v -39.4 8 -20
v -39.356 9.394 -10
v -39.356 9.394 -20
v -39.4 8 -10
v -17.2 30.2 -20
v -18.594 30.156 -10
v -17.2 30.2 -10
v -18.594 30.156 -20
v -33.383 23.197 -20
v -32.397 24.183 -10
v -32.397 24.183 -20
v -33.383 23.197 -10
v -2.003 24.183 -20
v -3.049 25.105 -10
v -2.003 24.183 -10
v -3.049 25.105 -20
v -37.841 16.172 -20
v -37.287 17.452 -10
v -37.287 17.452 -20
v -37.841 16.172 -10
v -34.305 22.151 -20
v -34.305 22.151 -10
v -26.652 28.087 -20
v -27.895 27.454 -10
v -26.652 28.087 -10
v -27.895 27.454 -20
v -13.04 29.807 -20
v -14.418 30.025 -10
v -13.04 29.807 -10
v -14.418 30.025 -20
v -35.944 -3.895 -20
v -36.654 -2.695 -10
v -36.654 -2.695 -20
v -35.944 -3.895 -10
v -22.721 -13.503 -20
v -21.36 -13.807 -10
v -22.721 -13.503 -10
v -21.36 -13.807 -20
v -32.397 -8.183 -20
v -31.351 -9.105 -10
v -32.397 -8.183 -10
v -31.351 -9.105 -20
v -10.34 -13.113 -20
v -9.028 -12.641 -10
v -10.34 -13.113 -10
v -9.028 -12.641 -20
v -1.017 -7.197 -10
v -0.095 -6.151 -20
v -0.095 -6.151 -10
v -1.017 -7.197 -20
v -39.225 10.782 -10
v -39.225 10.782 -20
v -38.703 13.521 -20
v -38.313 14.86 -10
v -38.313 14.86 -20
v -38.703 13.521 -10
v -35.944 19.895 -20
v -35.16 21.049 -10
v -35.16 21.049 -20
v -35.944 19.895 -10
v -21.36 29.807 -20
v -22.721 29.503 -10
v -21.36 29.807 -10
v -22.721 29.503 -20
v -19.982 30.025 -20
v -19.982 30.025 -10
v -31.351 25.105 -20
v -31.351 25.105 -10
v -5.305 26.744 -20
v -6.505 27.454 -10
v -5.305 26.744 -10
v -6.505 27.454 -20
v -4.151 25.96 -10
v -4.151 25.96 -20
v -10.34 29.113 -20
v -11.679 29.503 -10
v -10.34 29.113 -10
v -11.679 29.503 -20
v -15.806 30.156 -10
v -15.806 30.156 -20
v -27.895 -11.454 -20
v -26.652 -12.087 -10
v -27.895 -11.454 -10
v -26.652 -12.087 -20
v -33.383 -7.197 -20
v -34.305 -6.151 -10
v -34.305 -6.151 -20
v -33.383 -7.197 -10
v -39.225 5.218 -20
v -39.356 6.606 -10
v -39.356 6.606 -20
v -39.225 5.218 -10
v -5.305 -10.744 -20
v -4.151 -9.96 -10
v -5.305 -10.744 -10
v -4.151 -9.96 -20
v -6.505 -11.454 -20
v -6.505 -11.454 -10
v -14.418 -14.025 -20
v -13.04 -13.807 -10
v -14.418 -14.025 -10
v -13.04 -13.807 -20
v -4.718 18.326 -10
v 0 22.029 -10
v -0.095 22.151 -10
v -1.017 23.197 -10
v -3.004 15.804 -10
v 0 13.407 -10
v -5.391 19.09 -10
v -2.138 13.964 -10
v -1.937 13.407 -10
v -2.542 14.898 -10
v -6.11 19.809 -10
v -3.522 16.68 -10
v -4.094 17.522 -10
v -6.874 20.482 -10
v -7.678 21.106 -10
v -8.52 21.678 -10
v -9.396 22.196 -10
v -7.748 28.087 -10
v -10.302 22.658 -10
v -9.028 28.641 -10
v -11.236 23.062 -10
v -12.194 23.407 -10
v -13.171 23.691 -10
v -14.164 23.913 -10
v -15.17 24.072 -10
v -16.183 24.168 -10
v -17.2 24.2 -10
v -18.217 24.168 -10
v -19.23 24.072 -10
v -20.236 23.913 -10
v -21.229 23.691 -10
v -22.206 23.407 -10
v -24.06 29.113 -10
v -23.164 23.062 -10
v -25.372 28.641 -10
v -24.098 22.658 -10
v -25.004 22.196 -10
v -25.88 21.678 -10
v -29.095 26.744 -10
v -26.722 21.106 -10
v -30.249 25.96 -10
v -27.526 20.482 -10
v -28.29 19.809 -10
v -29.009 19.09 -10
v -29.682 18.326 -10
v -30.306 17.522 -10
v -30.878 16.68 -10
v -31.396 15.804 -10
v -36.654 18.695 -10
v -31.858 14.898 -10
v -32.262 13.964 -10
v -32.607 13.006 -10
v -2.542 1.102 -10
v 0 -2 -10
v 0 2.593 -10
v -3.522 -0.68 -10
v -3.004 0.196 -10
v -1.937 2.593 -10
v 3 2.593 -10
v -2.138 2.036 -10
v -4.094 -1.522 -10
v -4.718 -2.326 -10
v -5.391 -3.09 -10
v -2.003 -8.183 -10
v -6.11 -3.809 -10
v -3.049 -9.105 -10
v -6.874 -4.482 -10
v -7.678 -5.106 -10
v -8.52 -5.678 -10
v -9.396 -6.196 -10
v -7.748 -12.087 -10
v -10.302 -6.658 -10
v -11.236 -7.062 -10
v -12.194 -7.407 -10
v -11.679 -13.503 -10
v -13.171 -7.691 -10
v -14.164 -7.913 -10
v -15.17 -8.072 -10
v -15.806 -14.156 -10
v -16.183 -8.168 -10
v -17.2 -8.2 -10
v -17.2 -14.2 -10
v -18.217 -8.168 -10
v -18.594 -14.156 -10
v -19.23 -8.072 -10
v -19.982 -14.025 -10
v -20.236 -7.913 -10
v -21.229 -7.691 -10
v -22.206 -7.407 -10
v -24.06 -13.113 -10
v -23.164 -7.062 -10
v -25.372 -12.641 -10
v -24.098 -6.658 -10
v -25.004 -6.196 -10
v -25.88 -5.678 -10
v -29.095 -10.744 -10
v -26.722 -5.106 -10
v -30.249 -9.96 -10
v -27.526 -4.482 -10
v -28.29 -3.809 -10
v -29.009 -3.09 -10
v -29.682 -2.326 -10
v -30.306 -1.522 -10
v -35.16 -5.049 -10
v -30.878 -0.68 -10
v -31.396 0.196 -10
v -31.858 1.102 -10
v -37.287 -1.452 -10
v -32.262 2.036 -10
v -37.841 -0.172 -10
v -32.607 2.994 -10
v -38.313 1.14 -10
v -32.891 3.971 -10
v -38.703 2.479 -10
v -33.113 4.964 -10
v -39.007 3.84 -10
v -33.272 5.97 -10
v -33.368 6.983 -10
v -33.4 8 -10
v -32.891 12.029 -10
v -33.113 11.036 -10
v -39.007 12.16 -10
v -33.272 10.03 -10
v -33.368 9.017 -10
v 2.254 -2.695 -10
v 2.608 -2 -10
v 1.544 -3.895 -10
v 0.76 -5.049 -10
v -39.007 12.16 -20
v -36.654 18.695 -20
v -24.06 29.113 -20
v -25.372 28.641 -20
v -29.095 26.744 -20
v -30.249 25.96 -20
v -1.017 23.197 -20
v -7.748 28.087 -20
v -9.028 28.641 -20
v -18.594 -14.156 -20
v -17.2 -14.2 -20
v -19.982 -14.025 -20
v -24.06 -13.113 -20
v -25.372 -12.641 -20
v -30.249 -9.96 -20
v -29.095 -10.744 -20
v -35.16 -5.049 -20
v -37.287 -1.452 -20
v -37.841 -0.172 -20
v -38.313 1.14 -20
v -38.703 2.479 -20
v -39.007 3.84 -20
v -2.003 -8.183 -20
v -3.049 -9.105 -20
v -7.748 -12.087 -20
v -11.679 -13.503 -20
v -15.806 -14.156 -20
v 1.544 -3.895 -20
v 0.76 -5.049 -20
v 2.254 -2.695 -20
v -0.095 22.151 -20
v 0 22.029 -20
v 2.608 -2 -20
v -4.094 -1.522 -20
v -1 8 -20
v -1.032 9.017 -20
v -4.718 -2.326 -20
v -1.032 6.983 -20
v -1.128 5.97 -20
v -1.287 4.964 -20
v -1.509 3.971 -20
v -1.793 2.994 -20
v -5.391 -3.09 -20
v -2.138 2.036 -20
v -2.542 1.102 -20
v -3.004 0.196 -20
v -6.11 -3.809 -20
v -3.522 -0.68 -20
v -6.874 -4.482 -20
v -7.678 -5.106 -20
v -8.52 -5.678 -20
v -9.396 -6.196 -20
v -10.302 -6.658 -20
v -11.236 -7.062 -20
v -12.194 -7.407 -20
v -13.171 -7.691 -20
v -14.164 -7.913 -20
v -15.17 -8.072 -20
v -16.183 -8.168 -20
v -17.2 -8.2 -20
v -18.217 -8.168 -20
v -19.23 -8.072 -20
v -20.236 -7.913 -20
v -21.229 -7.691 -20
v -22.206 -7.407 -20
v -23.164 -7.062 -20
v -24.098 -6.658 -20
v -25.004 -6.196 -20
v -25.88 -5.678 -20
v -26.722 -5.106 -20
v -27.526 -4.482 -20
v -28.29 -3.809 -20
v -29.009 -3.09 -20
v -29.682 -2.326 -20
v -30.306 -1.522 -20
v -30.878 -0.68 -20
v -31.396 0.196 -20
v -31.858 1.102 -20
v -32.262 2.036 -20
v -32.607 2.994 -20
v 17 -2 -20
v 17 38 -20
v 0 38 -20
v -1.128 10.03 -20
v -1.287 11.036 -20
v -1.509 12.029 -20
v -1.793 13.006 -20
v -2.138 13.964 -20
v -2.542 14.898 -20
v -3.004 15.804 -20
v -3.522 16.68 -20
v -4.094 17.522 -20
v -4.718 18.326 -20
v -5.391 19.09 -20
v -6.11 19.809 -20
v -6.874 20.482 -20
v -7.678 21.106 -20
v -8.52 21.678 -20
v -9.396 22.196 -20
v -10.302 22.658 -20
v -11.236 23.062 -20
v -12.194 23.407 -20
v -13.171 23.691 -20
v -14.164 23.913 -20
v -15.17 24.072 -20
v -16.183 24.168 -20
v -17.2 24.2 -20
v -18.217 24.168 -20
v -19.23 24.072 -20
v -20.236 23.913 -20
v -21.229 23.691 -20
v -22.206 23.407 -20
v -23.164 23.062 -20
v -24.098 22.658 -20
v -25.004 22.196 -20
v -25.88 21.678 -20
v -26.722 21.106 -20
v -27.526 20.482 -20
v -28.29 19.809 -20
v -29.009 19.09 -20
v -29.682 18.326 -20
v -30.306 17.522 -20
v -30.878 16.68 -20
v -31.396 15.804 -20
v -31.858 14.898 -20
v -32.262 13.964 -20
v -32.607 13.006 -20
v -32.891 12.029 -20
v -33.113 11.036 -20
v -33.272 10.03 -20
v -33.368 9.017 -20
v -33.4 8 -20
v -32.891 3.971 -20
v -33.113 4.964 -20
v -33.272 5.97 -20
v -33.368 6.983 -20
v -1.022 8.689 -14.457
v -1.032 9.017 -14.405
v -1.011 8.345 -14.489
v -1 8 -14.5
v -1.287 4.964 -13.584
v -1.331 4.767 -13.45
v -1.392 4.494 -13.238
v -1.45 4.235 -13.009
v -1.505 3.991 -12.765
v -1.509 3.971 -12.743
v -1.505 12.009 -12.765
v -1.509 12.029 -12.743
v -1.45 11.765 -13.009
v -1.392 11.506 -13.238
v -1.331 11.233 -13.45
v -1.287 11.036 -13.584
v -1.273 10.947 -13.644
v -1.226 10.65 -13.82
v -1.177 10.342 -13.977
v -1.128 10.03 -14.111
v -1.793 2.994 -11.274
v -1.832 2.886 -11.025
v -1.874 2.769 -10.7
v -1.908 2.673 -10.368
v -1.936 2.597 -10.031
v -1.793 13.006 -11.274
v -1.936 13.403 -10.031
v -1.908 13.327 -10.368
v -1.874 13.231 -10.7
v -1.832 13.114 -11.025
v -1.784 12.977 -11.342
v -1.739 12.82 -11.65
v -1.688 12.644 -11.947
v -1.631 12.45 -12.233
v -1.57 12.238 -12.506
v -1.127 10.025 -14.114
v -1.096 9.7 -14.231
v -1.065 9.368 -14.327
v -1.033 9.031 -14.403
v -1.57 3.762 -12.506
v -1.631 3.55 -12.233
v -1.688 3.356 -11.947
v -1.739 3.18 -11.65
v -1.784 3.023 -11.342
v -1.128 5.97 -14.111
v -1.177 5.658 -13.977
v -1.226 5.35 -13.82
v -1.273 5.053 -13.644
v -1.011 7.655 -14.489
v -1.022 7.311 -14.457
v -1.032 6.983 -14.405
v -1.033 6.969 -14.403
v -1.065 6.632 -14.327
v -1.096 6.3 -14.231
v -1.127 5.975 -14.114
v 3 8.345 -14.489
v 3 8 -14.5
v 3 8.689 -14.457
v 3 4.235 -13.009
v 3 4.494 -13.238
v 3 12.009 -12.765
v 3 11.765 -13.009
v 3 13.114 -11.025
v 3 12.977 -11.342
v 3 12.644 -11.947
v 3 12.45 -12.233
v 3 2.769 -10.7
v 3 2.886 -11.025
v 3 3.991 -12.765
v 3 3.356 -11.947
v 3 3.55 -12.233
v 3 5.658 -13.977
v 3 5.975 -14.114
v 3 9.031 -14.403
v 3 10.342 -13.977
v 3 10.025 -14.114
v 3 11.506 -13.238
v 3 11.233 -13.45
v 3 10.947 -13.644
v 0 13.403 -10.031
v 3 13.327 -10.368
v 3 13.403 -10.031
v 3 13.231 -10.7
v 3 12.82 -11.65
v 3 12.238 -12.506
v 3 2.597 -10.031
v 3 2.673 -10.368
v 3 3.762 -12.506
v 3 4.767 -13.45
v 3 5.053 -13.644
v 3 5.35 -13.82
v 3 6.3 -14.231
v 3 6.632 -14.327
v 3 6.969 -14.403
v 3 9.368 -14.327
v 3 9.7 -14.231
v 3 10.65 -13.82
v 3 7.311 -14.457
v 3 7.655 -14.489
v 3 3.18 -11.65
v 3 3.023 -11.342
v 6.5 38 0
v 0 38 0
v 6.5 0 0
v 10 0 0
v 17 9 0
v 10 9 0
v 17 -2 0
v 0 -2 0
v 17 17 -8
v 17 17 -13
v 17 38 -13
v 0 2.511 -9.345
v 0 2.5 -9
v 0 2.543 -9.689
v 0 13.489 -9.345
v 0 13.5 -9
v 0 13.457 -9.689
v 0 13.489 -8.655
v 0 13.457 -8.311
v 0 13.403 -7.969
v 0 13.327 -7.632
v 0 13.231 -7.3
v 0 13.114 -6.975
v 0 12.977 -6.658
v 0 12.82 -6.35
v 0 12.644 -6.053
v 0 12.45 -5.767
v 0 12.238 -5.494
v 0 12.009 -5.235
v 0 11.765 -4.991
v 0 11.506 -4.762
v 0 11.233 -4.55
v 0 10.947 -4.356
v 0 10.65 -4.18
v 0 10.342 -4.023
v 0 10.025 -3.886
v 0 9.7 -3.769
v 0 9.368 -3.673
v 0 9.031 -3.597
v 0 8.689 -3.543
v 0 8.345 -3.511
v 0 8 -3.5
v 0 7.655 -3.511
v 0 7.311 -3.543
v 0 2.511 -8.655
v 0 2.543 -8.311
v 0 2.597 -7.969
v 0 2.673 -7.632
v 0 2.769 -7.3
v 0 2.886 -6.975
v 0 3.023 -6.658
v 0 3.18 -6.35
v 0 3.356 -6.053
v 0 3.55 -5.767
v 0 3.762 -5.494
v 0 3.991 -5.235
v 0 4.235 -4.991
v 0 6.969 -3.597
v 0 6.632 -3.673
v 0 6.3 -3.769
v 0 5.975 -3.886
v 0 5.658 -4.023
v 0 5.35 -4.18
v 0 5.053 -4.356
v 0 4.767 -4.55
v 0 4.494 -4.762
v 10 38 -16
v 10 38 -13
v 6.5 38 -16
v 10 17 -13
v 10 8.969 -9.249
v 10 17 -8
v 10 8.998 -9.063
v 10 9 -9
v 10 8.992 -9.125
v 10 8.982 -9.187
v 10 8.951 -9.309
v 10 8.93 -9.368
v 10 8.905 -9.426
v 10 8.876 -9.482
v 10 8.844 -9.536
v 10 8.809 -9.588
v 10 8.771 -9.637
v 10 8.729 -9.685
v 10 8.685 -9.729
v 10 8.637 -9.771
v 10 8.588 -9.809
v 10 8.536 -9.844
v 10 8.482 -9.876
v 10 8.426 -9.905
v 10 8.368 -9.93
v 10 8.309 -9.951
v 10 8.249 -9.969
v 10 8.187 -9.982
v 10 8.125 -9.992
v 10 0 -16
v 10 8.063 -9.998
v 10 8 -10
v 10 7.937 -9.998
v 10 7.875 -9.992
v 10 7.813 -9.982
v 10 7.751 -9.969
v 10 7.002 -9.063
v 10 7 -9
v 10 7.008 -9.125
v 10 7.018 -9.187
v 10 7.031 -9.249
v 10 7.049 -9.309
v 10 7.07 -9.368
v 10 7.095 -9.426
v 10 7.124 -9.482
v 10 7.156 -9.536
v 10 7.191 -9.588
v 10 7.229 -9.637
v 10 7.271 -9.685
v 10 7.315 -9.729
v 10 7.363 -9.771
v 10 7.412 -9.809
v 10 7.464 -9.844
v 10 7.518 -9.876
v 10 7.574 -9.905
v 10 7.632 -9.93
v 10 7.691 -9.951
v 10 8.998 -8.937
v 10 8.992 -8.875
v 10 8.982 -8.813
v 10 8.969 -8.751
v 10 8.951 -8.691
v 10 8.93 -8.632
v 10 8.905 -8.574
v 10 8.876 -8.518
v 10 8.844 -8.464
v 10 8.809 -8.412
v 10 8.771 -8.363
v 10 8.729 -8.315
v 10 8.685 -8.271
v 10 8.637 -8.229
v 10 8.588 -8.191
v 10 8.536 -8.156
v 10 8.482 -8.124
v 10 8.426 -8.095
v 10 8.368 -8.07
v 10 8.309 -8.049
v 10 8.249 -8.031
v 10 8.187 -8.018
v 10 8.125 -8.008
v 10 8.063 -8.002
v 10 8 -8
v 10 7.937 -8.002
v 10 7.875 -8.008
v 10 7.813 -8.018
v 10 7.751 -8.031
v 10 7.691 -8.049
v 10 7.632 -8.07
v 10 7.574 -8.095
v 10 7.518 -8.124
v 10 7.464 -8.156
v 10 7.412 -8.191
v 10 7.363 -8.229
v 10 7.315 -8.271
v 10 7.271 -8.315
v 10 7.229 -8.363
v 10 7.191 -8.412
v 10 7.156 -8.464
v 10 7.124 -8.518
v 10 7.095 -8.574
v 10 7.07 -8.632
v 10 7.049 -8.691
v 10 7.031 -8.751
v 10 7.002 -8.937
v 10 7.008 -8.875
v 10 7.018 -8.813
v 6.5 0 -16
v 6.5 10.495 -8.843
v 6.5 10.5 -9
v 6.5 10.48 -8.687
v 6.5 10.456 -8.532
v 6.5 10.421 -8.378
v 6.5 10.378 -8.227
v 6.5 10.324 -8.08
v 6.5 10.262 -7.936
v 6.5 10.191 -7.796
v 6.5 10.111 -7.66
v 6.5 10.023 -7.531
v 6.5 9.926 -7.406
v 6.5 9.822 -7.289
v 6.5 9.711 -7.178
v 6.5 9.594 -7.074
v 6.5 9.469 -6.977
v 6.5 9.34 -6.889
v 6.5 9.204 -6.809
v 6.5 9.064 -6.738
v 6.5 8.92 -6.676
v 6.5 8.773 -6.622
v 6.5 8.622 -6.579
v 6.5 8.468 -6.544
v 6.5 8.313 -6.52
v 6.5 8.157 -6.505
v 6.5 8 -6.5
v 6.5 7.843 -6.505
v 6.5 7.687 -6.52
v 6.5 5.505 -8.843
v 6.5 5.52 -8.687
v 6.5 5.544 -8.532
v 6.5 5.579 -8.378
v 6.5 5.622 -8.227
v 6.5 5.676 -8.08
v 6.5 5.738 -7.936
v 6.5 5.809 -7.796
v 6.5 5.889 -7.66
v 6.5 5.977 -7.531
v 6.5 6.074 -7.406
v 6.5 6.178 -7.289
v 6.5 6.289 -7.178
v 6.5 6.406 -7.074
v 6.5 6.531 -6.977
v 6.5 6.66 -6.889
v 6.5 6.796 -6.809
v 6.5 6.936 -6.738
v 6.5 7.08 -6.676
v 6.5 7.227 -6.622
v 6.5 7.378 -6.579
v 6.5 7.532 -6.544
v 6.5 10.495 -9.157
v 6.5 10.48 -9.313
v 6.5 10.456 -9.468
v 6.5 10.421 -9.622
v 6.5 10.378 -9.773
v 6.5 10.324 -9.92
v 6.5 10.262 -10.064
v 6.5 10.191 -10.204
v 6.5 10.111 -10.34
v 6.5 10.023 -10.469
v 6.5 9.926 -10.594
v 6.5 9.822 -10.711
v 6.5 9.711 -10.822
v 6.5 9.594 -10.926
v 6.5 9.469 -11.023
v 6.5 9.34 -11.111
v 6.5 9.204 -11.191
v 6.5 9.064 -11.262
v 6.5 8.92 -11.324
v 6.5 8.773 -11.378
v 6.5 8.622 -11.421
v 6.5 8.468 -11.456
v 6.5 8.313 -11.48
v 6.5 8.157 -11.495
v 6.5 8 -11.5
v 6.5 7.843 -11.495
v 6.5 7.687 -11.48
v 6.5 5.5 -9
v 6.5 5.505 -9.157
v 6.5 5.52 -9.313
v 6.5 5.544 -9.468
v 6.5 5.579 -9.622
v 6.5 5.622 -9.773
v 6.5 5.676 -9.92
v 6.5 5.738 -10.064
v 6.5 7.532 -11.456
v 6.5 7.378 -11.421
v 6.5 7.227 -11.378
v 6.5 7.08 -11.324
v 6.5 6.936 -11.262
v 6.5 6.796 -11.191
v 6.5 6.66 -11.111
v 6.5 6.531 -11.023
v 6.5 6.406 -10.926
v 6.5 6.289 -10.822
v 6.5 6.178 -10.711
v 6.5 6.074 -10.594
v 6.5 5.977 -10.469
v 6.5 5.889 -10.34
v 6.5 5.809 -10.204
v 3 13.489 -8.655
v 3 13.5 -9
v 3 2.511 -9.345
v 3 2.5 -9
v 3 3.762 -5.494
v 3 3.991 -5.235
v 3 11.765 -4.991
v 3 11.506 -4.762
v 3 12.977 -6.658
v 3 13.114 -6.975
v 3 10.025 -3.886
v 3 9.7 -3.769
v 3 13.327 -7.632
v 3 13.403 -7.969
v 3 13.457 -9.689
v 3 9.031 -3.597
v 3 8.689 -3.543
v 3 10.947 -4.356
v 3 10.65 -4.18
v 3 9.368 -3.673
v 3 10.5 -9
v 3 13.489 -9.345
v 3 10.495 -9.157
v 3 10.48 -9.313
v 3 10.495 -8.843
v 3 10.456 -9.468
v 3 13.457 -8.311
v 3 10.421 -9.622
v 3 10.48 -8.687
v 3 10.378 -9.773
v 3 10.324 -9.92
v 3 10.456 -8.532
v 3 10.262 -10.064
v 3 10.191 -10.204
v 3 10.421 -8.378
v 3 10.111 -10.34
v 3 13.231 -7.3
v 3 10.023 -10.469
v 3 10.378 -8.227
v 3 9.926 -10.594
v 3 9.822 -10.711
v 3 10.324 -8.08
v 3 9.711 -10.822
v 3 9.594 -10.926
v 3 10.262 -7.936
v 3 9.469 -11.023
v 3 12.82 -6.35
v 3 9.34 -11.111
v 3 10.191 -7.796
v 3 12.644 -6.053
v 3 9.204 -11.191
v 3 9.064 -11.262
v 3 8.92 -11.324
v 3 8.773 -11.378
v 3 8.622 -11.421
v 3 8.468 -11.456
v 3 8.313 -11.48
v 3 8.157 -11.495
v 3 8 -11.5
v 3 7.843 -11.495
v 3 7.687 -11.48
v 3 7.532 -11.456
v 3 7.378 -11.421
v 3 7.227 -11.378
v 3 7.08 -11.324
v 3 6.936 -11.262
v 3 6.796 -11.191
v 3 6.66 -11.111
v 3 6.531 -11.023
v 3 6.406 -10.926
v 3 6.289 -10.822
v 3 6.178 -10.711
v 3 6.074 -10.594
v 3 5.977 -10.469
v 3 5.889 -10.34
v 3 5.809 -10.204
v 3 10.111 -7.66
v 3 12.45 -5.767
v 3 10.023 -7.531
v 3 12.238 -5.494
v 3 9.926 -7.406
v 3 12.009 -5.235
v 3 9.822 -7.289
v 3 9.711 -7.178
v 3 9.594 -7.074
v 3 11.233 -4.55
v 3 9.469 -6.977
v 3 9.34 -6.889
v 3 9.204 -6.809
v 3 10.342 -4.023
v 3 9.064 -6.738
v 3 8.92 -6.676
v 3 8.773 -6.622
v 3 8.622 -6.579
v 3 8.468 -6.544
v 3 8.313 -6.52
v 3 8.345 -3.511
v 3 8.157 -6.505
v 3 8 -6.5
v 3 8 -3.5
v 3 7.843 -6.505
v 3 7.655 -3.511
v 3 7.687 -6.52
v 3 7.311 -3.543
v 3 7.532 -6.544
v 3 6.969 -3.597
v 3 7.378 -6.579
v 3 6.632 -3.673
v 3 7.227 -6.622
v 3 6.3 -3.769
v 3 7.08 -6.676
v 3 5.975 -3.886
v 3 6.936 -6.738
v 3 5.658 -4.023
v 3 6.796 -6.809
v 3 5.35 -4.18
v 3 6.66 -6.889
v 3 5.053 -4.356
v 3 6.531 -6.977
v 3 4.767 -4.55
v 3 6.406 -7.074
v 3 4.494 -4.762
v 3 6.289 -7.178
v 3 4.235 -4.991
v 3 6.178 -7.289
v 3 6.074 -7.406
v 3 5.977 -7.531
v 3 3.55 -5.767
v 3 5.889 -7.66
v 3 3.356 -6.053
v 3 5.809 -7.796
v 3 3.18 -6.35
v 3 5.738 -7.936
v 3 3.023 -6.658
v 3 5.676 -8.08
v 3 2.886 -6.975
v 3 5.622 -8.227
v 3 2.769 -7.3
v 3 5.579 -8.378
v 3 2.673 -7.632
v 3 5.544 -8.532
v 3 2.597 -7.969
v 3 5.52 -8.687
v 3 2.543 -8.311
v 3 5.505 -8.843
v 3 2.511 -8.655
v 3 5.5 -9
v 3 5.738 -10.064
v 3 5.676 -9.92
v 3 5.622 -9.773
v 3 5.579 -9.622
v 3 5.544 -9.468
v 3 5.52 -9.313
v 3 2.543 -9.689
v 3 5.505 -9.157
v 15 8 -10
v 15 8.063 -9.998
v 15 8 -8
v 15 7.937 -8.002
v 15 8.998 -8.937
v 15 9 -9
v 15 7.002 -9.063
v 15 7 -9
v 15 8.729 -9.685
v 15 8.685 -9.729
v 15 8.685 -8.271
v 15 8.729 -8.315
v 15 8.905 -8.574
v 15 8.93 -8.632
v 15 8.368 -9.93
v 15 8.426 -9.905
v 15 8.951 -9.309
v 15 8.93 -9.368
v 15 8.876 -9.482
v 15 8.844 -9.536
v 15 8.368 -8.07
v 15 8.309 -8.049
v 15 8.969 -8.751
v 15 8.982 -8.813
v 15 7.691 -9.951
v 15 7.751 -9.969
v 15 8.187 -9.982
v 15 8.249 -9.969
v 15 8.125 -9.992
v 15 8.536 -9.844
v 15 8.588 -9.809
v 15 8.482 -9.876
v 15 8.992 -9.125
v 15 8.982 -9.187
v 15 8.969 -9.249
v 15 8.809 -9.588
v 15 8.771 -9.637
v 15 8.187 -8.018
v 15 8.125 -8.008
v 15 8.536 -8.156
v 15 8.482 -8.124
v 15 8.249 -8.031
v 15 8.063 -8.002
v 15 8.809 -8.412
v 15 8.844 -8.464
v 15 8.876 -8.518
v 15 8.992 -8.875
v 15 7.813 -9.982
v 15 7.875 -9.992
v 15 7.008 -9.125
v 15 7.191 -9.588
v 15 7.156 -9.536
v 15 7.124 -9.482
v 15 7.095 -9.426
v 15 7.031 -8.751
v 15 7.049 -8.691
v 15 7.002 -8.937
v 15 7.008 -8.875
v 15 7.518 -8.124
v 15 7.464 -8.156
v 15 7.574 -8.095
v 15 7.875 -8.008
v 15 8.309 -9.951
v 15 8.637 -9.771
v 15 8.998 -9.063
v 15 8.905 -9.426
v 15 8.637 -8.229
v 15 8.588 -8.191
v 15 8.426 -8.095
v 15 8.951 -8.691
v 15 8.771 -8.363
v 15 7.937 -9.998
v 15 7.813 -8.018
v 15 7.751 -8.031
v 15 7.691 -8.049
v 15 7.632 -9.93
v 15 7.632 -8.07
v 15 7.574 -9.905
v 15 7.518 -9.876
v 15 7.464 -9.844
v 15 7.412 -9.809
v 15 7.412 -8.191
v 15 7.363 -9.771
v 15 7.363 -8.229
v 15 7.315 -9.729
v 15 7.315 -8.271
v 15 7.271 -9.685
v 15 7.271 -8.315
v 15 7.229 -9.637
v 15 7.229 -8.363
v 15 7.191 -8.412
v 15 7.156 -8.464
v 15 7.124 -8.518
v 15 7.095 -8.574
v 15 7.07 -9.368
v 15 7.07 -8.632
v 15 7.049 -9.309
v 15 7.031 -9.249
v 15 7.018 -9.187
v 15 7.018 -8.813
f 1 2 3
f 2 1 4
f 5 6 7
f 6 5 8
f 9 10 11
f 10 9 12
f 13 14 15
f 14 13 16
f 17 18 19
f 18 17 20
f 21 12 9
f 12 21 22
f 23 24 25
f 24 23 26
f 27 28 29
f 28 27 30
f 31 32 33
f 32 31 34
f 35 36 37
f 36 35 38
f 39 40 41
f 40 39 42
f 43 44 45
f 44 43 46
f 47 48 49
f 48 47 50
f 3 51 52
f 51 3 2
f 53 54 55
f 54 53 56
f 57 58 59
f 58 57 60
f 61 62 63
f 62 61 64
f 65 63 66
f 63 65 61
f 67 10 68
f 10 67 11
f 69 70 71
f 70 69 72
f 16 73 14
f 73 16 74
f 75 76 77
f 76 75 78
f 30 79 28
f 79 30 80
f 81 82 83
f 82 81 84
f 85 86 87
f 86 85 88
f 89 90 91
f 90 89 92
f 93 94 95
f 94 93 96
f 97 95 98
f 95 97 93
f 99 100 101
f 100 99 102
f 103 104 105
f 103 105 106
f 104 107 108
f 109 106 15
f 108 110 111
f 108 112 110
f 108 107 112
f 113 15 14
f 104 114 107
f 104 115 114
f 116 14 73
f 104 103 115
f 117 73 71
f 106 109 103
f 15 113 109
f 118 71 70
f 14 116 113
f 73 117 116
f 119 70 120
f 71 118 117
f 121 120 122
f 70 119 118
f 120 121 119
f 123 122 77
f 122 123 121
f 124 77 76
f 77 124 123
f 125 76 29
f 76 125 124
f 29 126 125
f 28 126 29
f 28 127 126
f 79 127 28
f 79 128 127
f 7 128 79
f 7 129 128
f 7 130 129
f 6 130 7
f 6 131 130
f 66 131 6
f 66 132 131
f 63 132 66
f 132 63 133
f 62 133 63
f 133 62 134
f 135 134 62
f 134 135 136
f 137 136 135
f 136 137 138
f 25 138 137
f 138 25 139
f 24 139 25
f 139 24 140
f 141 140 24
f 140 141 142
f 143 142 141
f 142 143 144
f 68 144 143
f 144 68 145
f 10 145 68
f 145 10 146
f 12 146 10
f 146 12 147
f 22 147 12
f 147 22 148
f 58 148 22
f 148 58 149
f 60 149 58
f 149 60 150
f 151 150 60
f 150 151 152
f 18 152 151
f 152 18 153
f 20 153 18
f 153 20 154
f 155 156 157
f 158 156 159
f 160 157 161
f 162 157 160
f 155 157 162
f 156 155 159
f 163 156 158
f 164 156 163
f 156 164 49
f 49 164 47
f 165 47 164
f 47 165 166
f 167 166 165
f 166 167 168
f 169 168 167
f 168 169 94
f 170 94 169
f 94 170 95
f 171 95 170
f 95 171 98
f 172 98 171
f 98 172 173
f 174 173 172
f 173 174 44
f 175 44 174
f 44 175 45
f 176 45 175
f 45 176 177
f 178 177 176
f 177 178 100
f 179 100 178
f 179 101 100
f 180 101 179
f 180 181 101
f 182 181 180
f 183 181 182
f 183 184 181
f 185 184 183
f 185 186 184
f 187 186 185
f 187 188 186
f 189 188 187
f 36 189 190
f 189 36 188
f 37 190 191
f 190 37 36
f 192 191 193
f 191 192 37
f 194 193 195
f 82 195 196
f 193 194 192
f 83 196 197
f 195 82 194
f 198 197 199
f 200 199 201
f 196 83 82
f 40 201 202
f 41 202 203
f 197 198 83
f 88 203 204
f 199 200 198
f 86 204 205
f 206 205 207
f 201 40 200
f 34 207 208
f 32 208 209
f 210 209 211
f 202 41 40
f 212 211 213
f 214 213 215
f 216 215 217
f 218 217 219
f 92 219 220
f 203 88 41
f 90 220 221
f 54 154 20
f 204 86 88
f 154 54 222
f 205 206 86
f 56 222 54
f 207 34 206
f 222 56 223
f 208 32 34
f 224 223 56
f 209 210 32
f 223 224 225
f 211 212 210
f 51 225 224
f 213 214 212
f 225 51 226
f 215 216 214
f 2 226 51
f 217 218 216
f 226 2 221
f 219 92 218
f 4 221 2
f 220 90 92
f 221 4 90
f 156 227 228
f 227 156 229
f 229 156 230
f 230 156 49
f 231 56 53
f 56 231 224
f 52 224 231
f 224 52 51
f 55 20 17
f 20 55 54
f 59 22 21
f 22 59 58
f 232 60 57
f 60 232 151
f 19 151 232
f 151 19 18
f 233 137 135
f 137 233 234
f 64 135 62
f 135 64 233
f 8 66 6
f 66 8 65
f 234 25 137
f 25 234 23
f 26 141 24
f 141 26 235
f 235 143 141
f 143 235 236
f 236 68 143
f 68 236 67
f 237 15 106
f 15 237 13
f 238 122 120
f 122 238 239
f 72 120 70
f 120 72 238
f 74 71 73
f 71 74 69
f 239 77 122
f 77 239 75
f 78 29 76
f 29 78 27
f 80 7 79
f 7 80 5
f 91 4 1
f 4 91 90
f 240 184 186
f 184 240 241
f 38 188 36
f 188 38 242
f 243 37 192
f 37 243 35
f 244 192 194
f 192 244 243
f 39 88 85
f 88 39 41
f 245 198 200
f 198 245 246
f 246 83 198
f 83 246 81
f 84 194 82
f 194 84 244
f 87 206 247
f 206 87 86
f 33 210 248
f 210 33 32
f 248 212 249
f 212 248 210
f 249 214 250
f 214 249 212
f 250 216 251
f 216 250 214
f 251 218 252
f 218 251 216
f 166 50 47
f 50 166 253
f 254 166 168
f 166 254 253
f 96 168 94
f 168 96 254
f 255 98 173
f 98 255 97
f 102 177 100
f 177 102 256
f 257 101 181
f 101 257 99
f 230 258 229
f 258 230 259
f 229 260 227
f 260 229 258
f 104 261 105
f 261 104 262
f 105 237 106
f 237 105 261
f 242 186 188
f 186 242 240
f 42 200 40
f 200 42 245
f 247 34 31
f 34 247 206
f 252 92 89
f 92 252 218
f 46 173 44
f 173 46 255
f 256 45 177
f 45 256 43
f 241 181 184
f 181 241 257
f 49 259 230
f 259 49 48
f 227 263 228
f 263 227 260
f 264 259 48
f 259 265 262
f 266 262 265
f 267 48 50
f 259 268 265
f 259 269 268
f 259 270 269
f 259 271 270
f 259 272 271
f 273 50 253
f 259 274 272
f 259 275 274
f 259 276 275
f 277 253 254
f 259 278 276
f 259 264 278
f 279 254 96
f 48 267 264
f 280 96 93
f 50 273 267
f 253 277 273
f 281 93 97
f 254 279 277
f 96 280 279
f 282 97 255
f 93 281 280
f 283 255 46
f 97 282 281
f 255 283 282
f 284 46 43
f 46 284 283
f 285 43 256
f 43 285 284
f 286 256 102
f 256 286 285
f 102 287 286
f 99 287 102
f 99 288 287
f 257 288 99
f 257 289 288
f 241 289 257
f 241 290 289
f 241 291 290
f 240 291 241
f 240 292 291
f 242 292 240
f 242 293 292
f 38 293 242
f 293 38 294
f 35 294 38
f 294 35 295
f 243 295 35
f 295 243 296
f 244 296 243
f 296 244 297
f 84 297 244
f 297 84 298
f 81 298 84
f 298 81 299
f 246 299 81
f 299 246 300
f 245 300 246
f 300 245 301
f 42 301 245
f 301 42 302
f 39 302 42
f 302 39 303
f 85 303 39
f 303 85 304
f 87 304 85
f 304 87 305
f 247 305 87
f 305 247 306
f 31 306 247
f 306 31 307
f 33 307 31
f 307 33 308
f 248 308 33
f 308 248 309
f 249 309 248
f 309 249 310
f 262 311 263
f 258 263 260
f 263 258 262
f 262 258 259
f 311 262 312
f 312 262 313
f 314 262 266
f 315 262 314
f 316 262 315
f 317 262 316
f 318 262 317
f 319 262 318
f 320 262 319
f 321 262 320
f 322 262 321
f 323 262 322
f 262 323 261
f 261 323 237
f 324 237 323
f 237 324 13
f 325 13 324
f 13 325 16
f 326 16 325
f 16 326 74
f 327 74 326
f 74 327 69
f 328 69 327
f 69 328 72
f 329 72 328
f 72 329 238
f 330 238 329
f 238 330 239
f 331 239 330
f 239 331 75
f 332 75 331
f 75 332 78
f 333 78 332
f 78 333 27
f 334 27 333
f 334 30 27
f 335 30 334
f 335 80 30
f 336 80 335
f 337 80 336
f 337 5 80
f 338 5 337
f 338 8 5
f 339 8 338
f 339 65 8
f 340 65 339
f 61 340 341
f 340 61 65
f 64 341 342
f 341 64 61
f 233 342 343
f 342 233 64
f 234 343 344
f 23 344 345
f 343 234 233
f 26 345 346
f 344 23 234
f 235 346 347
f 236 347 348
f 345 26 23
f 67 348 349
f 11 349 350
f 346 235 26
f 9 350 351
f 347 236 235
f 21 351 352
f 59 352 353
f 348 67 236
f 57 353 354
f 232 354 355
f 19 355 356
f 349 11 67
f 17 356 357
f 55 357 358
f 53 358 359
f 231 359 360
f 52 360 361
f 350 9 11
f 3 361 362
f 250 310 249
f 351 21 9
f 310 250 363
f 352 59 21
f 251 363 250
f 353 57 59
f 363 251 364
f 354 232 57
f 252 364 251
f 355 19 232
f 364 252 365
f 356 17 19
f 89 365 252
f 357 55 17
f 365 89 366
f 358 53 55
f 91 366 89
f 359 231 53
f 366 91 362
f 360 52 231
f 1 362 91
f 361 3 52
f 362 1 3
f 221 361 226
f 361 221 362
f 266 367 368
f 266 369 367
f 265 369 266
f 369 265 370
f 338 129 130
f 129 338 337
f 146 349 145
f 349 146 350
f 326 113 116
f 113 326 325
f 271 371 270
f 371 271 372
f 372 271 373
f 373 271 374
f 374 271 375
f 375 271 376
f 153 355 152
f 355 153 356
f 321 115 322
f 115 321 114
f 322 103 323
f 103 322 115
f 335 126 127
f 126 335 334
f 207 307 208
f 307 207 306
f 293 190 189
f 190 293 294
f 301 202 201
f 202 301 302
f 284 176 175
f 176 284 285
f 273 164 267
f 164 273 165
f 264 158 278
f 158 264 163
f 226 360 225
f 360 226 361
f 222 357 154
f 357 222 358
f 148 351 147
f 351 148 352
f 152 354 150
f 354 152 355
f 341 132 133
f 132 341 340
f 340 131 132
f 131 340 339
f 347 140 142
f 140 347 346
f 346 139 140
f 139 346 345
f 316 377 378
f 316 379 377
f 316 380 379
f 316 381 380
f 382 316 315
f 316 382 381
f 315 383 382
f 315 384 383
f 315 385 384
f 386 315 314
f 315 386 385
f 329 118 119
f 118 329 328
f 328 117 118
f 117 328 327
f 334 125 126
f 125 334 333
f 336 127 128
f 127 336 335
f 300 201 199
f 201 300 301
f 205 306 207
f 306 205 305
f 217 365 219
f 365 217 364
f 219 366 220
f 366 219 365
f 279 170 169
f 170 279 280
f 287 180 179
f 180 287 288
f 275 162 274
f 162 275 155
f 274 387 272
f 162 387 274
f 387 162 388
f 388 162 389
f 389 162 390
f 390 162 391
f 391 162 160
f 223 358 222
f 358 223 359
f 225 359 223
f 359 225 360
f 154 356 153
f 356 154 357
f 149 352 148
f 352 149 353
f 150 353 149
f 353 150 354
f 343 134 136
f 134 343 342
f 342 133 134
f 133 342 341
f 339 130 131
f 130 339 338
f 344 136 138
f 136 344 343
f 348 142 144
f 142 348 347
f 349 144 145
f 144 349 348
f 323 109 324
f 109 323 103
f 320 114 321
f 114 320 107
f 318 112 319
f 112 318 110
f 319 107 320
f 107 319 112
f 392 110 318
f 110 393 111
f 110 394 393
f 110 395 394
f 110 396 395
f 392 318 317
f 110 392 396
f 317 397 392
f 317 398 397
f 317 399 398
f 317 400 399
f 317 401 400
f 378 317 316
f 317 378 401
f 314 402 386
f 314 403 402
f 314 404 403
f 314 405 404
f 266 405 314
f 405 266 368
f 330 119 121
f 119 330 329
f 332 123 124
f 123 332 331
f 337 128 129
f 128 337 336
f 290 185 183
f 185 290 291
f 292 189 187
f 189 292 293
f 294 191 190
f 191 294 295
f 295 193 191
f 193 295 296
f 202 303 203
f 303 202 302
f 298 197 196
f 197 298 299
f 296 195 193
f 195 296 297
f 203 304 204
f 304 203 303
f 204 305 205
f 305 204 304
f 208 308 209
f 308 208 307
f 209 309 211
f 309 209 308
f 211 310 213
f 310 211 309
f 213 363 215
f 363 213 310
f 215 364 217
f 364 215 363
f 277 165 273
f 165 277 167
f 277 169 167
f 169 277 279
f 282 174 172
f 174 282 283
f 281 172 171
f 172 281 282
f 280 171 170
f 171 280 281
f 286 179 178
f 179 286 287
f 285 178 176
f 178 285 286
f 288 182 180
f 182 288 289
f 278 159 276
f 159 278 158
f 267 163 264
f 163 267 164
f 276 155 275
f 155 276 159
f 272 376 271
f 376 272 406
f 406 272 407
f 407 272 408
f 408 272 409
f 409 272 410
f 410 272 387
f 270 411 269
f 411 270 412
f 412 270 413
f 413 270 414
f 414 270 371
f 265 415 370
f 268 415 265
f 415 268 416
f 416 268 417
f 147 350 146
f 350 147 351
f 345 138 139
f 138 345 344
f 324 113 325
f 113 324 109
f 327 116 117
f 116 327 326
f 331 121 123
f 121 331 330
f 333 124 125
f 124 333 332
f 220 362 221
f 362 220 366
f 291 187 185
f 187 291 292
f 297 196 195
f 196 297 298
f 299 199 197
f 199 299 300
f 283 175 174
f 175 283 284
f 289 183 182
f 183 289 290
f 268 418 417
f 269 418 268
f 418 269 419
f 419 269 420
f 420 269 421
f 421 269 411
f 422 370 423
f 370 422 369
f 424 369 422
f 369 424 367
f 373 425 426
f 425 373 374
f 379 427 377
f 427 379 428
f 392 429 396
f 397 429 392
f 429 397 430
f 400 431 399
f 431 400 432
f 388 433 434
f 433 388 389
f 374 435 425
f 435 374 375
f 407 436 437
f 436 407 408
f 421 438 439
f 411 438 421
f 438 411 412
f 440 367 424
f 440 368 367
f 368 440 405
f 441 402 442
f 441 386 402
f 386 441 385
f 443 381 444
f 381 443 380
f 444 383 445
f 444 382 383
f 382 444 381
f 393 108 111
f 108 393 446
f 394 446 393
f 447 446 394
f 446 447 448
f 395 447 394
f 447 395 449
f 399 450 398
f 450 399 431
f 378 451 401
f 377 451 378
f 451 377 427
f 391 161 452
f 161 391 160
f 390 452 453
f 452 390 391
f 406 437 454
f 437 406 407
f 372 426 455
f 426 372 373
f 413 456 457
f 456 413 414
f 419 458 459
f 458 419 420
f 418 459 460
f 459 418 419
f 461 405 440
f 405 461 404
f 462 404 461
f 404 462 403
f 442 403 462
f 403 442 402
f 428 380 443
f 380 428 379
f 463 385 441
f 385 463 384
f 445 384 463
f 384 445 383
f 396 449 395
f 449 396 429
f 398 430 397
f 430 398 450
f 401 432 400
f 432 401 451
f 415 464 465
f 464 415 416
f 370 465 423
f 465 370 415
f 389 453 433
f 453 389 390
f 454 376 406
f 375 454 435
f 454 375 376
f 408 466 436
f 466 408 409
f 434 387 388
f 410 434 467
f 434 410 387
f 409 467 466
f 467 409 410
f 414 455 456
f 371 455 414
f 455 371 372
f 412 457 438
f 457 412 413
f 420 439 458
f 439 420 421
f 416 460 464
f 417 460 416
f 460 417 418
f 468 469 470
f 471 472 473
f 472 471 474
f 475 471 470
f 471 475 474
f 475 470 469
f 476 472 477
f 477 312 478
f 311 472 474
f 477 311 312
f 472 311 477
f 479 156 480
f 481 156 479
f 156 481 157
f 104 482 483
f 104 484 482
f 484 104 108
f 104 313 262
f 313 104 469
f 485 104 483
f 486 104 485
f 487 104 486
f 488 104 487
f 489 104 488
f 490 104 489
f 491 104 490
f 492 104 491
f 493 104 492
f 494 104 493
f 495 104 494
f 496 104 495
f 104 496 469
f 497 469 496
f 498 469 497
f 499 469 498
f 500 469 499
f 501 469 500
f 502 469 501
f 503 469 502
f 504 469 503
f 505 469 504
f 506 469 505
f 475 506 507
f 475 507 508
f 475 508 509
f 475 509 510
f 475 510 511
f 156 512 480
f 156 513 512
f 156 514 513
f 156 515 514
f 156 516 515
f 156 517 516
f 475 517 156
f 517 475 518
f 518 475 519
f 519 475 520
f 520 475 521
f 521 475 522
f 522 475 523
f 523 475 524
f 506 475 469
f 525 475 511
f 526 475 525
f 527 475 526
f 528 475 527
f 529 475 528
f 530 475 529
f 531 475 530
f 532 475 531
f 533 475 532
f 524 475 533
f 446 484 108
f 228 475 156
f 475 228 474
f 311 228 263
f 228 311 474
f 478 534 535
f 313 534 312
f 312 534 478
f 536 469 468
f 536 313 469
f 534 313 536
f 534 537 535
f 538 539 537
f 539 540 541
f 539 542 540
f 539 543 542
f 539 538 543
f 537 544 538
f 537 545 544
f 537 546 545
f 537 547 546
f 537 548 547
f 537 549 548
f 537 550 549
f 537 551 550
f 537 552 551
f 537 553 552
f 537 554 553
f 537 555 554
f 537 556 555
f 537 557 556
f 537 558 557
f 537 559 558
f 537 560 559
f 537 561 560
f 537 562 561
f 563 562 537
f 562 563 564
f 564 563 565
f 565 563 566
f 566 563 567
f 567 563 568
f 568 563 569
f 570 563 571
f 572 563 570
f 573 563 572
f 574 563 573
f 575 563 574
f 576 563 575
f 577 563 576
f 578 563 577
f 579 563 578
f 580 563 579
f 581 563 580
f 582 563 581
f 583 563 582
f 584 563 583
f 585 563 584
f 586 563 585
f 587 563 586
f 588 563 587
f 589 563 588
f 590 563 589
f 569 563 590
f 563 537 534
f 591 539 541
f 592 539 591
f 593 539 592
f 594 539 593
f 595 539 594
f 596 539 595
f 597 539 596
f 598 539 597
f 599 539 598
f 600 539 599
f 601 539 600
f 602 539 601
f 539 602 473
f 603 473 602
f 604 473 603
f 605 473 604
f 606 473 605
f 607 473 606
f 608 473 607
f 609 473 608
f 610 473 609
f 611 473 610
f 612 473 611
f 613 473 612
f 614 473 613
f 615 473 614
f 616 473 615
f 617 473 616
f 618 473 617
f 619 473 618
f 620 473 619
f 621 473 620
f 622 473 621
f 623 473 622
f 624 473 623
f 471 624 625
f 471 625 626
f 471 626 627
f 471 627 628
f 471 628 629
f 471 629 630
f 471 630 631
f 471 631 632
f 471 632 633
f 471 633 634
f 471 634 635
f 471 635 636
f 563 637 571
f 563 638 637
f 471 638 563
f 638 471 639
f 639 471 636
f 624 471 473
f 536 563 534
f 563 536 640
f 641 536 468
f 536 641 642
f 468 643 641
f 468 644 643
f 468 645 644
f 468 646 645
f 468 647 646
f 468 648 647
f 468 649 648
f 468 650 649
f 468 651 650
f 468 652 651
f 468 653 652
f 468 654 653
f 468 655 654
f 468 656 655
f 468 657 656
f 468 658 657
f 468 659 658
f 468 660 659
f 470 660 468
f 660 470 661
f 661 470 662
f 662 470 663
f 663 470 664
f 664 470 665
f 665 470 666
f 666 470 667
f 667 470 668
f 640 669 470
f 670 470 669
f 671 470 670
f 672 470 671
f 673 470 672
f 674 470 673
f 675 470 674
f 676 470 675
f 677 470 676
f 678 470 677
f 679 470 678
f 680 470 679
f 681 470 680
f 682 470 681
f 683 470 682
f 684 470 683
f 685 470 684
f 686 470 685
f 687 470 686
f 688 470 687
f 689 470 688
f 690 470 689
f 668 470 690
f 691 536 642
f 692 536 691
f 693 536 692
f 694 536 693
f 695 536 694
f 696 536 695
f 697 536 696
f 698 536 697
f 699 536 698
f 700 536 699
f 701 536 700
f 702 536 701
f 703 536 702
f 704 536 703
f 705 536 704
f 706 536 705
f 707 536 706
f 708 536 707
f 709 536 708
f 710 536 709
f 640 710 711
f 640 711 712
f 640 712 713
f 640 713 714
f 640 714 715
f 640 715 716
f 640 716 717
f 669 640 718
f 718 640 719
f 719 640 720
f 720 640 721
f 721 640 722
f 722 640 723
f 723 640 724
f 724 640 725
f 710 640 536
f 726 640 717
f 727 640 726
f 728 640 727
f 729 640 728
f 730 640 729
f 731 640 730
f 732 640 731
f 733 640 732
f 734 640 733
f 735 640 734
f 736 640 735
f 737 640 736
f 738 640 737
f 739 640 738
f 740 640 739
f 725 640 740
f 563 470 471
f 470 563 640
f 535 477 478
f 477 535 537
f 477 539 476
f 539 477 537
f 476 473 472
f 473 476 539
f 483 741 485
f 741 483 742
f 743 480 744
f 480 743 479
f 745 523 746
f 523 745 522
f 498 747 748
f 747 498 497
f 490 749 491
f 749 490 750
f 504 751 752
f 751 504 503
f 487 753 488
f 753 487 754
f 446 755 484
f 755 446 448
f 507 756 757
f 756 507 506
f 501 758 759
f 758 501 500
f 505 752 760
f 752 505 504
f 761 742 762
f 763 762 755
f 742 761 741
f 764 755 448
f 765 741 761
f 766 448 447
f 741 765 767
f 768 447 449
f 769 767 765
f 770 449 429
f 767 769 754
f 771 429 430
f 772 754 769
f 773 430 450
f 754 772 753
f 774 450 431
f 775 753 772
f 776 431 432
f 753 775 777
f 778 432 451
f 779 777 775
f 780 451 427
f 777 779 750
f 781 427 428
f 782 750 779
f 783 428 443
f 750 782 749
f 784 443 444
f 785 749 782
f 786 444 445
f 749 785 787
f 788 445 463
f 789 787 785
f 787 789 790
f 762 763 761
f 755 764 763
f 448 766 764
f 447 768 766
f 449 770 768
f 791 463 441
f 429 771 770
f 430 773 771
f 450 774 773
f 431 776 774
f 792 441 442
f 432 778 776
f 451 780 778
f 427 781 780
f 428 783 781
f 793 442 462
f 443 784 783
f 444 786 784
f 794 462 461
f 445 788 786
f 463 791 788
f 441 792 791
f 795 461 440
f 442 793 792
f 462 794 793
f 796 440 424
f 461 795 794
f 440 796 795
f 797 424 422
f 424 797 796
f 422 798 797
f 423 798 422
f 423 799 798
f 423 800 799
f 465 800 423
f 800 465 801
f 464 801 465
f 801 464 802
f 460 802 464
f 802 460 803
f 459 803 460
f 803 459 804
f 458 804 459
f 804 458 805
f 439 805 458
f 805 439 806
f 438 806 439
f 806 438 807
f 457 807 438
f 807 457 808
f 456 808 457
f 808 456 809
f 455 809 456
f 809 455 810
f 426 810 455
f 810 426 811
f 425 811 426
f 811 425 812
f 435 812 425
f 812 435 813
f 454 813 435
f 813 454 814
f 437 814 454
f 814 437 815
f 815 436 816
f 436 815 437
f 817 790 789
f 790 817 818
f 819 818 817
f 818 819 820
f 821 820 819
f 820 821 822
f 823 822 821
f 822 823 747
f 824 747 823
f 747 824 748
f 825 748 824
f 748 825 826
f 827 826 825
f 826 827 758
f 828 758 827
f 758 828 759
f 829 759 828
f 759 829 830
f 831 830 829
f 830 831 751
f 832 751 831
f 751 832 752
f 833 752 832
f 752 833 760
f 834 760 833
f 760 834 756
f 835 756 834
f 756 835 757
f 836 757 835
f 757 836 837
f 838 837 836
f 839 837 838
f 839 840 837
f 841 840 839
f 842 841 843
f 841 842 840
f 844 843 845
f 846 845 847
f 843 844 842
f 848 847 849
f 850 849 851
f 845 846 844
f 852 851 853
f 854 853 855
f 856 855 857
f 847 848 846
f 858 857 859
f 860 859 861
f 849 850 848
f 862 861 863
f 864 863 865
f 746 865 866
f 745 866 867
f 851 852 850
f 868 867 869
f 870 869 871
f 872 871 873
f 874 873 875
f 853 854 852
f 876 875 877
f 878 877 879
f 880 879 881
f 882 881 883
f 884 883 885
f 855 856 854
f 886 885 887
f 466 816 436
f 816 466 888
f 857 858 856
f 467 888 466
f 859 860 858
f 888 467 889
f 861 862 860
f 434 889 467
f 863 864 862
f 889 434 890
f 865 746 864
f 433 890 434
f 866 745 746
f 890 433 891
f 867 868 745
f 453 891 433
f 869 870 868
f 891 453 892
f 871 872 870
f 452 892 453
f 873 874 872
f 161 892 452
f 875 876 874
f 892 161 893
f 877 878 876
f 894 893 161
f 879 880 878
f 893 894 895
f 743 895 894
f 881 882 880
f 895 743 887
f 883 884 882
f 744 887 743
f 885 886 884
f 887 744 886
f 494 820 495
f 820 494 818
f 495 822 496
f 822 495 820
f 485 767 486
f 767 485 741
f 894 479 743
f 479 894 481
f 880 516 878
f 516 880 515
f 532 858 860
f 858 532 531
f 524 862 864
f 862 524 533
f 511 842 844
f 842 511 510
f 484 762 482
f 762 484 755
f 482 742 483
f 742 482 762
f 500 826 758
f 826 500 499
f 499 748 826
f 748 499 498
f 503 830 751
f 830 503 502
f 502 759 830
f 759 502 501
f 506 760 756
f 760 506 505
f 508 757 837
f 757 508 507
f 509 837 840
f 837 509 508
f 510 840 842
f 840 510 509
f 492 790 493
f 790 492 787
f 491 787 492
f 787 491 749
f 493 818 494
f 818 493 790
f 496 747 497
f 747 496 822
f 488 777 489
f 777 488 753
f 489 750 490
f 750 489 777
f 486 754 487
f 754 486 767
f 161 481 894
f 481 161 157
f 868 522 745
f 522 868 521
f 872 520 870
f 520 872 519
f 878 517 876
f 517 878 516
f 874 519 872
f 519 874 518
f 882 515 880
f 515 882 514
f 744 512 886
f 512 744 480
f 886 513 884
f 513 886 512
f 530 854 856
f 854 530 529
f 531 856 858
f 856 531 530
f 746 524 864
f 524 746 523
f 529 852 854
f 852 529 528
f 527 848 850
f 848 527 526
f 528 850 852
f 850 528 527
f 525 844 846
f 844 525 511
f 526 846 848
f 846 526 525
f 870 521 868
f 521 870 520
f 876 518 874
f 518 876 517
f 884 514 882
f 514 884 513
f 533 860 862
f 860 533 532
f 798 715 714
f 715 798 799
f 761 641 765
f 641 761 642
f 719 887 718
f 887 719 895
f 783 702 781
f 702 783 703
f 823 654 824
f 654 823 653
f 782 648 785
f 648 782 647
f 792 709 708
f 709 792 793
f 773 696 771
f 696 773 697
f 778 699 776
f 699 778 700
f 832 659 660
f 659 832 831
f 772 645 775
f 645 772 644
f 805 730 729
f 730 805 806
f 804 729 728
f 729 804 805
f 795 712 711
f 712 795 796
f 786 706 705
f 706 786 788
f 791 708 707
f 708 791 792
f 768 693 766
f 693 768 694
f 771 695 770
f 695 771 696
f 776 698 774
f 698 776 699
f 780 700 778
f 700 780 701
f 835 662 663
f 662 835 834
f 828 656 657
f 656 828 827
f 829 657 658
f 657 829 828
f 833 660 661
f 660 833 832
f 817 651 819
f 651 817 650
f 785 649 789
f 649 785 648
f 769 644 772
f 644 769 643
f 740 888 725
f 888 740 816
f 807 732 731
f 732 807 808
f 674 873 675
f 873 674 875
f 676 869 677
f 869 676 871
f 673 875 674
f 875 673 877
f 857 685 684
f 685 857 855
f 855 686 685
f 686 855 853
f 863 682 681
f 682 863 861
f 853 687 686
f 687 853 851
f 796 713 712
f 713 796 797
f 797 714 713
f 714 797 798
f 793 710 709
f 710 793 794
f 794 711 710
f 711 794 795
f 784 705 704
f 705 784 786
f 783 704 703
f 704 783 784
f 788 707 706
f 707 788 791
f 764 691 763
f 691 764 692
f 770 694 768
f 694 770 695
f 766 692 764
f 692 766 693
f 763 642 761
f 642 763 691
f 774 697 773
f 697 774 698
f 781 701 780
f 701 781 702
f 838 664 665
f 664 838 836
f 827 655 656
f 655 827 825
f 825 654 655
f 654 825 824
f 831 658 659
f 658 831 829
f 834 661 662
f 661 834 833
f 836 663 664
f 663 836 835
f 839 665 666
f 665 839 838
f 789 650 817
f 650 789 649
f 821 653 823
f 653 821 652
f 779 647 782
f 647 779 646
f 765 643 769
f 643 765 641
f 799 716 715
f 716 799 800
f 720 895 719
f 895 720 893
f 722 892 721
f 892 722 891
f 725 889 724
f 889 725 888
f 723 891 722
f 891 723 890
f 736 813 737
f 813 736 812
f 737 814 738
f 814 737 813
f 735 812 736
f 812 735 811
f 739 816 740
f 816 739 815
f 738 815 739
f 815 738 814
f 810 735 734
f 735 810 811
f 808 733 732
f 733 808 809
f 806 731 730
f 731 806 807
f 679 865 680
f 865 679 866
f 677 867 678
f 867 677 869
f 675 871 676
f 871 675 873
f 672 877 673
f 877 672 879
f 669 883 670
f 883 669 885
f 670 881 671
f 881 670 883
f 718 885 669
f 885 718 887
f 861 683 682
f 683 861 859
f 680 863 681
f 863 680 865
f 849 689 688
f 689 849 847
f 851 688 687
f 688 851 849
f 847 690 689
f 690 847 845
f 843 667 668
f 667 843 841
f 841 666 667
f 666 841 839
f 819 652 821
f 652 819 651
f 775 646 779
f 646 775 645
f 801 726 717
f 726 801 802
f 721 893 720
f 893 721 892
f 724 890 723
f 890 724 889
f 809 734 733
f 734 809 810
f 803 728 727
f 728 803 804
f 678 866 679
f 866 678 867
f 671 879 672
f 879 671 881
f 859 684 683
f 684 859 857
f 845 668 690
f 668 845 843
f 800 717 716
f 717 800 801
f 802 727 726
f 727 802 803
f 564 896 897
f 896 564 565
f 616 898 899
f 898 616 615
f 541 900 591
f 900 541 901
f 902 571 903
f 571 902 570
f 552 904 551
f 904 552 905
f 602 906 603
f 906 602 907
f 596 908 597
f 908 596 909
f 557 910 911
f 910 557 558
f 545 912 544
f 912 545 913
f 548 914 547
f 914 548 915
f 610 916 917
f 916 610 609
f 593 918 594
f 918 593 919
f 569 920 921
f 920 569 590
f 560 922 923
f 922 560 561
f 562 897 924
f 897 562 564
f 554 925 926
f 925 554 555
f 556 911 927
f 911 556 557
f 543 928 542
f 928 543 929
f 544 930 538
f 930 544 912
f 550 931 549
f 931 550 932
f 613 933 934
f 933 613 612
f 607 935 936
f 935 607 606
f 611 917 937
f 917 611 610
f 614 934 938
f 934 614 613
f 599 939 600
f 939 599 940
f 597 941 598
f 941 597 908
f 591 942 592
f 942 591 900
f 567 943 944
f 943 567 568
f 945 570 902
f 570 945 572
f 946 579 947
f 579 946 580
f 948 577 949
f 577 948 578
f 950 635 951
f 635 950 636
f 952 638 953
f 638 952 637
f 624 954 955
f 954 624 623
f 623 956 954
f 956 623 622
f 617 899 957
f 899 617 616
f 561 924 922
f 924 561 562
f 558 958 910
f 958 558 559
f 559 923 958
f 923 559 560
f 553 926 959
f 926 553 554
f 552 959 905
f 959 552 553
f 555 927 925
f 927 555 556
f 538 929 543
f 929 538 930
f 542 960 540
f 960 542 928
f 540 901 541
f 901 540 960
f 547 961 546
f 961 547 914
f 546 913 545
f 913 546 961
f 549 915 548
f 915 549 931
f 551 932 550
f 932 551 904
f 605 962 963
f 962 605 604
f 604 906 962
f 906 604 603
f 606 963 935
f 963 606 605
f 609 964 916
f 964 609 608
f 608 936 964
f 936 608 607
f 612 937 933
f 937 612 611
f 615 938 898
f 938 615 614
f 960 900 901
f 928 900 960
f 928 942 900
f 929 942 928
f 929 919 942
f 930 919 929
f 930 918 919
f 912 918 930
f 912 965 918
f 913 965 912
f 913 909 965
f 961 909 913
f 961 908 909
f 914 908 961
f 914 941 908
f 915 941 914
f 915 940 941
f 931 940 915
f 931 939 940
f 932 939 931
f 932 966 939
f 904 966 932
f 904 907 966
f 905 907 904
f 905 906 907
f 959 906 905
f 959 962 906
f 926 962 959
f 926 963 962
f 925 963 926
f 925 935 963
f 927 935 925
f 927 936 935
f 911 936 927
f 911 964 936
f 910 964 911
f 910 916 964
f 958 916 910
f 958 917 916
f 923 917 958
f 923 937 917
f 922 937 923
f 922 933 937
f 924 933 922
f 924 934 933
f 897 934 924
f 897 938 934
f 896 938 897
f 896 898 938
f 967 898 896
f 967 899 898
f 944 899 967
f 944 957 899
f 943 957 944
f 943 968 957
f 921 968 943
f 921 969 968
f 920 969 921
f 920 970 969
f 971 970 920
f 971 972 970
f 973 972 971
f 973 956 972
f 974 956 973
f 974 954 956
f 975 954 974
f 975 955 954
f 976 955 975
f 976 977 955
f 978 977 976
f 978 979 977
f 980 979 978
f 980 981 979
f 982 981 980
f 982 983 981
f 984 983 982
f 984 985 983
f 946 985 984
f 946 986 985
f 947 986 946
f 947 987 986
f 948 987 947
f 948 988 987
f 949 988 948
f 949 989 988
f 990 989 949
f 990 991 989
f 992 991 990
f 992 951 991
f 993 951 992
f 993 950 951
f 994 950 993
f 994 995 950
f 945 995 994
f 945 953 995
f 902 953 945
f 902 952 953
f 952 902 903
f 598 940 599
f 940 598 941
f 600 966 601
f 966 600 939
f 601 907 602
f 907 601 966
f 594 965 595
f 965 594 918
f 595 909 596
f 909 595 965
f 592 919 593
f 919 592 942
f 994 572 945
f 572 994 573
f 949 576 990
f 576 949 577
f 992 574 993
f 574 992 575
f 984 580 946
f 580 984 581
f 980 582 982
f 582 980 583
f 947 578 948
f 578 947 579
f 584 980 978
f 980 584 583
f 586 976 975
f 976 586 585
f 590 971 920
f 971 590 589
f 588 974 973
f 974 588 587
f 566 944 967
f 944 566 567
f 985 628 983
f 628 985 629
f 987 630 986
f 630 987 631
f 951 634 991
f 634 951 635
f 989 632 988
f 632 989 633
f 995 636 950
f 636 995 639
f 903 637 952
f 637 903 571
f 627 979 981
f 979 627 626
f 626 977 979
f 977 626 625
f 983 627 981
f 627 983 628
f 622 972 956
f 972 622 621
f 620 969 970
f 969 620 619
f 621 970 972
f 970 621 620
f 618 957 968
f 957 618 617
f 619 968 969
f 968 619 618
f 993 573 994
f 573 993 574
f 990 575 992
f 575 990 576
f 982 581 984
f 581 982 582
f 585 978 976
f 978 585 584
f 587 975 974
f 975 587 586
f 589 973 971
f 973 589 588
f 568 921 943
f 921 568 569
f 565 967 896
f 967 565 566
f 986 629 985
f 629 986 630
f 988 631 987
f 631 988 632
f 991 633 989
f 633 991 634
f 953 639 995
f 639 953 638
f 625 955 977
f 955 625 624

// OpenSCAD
// EFTE voltaic pipe clamp LH


$fn=100;

PR=16.2; //enter pvc pipe radius here (for standard 1" PVC, PR=17; for 32mm PR=16.2)


rotate([0,90,0])union(){
    //pipe ring    
    translate([10,8,-PR-1])rotate([0,90,0])difference(){
        cylinder(10,PR+6,PR+6);
        translate([0,0,-1])cylinder(25,PR,PR);
        translate([0,0,-1])rotate([0,-90,0])
        cylinder(25,5.5,5.5);
        }
    //panel mount
    difference(){
        translate([0,-2,0]) cube([20,40,17]);
        translate([-19,0,6.5]) cube([35,135,3.5]);
        translate([-22,17,9]) cube([35,85,10]);
        translate([-30,37,9]) cube([35,135,15]);
        translate([-12,-3,7]) rotate([0,0,45]) cube([35,135,20]);

        //screw hole
        translate([9,8,-22]) cylinder(25,5.5,5.5);
        translate([9,8,-15]) cylinder(25,2.5,2.5);       
        translate([9,8,-10]) cylinder(25,1,1);
        }

}
